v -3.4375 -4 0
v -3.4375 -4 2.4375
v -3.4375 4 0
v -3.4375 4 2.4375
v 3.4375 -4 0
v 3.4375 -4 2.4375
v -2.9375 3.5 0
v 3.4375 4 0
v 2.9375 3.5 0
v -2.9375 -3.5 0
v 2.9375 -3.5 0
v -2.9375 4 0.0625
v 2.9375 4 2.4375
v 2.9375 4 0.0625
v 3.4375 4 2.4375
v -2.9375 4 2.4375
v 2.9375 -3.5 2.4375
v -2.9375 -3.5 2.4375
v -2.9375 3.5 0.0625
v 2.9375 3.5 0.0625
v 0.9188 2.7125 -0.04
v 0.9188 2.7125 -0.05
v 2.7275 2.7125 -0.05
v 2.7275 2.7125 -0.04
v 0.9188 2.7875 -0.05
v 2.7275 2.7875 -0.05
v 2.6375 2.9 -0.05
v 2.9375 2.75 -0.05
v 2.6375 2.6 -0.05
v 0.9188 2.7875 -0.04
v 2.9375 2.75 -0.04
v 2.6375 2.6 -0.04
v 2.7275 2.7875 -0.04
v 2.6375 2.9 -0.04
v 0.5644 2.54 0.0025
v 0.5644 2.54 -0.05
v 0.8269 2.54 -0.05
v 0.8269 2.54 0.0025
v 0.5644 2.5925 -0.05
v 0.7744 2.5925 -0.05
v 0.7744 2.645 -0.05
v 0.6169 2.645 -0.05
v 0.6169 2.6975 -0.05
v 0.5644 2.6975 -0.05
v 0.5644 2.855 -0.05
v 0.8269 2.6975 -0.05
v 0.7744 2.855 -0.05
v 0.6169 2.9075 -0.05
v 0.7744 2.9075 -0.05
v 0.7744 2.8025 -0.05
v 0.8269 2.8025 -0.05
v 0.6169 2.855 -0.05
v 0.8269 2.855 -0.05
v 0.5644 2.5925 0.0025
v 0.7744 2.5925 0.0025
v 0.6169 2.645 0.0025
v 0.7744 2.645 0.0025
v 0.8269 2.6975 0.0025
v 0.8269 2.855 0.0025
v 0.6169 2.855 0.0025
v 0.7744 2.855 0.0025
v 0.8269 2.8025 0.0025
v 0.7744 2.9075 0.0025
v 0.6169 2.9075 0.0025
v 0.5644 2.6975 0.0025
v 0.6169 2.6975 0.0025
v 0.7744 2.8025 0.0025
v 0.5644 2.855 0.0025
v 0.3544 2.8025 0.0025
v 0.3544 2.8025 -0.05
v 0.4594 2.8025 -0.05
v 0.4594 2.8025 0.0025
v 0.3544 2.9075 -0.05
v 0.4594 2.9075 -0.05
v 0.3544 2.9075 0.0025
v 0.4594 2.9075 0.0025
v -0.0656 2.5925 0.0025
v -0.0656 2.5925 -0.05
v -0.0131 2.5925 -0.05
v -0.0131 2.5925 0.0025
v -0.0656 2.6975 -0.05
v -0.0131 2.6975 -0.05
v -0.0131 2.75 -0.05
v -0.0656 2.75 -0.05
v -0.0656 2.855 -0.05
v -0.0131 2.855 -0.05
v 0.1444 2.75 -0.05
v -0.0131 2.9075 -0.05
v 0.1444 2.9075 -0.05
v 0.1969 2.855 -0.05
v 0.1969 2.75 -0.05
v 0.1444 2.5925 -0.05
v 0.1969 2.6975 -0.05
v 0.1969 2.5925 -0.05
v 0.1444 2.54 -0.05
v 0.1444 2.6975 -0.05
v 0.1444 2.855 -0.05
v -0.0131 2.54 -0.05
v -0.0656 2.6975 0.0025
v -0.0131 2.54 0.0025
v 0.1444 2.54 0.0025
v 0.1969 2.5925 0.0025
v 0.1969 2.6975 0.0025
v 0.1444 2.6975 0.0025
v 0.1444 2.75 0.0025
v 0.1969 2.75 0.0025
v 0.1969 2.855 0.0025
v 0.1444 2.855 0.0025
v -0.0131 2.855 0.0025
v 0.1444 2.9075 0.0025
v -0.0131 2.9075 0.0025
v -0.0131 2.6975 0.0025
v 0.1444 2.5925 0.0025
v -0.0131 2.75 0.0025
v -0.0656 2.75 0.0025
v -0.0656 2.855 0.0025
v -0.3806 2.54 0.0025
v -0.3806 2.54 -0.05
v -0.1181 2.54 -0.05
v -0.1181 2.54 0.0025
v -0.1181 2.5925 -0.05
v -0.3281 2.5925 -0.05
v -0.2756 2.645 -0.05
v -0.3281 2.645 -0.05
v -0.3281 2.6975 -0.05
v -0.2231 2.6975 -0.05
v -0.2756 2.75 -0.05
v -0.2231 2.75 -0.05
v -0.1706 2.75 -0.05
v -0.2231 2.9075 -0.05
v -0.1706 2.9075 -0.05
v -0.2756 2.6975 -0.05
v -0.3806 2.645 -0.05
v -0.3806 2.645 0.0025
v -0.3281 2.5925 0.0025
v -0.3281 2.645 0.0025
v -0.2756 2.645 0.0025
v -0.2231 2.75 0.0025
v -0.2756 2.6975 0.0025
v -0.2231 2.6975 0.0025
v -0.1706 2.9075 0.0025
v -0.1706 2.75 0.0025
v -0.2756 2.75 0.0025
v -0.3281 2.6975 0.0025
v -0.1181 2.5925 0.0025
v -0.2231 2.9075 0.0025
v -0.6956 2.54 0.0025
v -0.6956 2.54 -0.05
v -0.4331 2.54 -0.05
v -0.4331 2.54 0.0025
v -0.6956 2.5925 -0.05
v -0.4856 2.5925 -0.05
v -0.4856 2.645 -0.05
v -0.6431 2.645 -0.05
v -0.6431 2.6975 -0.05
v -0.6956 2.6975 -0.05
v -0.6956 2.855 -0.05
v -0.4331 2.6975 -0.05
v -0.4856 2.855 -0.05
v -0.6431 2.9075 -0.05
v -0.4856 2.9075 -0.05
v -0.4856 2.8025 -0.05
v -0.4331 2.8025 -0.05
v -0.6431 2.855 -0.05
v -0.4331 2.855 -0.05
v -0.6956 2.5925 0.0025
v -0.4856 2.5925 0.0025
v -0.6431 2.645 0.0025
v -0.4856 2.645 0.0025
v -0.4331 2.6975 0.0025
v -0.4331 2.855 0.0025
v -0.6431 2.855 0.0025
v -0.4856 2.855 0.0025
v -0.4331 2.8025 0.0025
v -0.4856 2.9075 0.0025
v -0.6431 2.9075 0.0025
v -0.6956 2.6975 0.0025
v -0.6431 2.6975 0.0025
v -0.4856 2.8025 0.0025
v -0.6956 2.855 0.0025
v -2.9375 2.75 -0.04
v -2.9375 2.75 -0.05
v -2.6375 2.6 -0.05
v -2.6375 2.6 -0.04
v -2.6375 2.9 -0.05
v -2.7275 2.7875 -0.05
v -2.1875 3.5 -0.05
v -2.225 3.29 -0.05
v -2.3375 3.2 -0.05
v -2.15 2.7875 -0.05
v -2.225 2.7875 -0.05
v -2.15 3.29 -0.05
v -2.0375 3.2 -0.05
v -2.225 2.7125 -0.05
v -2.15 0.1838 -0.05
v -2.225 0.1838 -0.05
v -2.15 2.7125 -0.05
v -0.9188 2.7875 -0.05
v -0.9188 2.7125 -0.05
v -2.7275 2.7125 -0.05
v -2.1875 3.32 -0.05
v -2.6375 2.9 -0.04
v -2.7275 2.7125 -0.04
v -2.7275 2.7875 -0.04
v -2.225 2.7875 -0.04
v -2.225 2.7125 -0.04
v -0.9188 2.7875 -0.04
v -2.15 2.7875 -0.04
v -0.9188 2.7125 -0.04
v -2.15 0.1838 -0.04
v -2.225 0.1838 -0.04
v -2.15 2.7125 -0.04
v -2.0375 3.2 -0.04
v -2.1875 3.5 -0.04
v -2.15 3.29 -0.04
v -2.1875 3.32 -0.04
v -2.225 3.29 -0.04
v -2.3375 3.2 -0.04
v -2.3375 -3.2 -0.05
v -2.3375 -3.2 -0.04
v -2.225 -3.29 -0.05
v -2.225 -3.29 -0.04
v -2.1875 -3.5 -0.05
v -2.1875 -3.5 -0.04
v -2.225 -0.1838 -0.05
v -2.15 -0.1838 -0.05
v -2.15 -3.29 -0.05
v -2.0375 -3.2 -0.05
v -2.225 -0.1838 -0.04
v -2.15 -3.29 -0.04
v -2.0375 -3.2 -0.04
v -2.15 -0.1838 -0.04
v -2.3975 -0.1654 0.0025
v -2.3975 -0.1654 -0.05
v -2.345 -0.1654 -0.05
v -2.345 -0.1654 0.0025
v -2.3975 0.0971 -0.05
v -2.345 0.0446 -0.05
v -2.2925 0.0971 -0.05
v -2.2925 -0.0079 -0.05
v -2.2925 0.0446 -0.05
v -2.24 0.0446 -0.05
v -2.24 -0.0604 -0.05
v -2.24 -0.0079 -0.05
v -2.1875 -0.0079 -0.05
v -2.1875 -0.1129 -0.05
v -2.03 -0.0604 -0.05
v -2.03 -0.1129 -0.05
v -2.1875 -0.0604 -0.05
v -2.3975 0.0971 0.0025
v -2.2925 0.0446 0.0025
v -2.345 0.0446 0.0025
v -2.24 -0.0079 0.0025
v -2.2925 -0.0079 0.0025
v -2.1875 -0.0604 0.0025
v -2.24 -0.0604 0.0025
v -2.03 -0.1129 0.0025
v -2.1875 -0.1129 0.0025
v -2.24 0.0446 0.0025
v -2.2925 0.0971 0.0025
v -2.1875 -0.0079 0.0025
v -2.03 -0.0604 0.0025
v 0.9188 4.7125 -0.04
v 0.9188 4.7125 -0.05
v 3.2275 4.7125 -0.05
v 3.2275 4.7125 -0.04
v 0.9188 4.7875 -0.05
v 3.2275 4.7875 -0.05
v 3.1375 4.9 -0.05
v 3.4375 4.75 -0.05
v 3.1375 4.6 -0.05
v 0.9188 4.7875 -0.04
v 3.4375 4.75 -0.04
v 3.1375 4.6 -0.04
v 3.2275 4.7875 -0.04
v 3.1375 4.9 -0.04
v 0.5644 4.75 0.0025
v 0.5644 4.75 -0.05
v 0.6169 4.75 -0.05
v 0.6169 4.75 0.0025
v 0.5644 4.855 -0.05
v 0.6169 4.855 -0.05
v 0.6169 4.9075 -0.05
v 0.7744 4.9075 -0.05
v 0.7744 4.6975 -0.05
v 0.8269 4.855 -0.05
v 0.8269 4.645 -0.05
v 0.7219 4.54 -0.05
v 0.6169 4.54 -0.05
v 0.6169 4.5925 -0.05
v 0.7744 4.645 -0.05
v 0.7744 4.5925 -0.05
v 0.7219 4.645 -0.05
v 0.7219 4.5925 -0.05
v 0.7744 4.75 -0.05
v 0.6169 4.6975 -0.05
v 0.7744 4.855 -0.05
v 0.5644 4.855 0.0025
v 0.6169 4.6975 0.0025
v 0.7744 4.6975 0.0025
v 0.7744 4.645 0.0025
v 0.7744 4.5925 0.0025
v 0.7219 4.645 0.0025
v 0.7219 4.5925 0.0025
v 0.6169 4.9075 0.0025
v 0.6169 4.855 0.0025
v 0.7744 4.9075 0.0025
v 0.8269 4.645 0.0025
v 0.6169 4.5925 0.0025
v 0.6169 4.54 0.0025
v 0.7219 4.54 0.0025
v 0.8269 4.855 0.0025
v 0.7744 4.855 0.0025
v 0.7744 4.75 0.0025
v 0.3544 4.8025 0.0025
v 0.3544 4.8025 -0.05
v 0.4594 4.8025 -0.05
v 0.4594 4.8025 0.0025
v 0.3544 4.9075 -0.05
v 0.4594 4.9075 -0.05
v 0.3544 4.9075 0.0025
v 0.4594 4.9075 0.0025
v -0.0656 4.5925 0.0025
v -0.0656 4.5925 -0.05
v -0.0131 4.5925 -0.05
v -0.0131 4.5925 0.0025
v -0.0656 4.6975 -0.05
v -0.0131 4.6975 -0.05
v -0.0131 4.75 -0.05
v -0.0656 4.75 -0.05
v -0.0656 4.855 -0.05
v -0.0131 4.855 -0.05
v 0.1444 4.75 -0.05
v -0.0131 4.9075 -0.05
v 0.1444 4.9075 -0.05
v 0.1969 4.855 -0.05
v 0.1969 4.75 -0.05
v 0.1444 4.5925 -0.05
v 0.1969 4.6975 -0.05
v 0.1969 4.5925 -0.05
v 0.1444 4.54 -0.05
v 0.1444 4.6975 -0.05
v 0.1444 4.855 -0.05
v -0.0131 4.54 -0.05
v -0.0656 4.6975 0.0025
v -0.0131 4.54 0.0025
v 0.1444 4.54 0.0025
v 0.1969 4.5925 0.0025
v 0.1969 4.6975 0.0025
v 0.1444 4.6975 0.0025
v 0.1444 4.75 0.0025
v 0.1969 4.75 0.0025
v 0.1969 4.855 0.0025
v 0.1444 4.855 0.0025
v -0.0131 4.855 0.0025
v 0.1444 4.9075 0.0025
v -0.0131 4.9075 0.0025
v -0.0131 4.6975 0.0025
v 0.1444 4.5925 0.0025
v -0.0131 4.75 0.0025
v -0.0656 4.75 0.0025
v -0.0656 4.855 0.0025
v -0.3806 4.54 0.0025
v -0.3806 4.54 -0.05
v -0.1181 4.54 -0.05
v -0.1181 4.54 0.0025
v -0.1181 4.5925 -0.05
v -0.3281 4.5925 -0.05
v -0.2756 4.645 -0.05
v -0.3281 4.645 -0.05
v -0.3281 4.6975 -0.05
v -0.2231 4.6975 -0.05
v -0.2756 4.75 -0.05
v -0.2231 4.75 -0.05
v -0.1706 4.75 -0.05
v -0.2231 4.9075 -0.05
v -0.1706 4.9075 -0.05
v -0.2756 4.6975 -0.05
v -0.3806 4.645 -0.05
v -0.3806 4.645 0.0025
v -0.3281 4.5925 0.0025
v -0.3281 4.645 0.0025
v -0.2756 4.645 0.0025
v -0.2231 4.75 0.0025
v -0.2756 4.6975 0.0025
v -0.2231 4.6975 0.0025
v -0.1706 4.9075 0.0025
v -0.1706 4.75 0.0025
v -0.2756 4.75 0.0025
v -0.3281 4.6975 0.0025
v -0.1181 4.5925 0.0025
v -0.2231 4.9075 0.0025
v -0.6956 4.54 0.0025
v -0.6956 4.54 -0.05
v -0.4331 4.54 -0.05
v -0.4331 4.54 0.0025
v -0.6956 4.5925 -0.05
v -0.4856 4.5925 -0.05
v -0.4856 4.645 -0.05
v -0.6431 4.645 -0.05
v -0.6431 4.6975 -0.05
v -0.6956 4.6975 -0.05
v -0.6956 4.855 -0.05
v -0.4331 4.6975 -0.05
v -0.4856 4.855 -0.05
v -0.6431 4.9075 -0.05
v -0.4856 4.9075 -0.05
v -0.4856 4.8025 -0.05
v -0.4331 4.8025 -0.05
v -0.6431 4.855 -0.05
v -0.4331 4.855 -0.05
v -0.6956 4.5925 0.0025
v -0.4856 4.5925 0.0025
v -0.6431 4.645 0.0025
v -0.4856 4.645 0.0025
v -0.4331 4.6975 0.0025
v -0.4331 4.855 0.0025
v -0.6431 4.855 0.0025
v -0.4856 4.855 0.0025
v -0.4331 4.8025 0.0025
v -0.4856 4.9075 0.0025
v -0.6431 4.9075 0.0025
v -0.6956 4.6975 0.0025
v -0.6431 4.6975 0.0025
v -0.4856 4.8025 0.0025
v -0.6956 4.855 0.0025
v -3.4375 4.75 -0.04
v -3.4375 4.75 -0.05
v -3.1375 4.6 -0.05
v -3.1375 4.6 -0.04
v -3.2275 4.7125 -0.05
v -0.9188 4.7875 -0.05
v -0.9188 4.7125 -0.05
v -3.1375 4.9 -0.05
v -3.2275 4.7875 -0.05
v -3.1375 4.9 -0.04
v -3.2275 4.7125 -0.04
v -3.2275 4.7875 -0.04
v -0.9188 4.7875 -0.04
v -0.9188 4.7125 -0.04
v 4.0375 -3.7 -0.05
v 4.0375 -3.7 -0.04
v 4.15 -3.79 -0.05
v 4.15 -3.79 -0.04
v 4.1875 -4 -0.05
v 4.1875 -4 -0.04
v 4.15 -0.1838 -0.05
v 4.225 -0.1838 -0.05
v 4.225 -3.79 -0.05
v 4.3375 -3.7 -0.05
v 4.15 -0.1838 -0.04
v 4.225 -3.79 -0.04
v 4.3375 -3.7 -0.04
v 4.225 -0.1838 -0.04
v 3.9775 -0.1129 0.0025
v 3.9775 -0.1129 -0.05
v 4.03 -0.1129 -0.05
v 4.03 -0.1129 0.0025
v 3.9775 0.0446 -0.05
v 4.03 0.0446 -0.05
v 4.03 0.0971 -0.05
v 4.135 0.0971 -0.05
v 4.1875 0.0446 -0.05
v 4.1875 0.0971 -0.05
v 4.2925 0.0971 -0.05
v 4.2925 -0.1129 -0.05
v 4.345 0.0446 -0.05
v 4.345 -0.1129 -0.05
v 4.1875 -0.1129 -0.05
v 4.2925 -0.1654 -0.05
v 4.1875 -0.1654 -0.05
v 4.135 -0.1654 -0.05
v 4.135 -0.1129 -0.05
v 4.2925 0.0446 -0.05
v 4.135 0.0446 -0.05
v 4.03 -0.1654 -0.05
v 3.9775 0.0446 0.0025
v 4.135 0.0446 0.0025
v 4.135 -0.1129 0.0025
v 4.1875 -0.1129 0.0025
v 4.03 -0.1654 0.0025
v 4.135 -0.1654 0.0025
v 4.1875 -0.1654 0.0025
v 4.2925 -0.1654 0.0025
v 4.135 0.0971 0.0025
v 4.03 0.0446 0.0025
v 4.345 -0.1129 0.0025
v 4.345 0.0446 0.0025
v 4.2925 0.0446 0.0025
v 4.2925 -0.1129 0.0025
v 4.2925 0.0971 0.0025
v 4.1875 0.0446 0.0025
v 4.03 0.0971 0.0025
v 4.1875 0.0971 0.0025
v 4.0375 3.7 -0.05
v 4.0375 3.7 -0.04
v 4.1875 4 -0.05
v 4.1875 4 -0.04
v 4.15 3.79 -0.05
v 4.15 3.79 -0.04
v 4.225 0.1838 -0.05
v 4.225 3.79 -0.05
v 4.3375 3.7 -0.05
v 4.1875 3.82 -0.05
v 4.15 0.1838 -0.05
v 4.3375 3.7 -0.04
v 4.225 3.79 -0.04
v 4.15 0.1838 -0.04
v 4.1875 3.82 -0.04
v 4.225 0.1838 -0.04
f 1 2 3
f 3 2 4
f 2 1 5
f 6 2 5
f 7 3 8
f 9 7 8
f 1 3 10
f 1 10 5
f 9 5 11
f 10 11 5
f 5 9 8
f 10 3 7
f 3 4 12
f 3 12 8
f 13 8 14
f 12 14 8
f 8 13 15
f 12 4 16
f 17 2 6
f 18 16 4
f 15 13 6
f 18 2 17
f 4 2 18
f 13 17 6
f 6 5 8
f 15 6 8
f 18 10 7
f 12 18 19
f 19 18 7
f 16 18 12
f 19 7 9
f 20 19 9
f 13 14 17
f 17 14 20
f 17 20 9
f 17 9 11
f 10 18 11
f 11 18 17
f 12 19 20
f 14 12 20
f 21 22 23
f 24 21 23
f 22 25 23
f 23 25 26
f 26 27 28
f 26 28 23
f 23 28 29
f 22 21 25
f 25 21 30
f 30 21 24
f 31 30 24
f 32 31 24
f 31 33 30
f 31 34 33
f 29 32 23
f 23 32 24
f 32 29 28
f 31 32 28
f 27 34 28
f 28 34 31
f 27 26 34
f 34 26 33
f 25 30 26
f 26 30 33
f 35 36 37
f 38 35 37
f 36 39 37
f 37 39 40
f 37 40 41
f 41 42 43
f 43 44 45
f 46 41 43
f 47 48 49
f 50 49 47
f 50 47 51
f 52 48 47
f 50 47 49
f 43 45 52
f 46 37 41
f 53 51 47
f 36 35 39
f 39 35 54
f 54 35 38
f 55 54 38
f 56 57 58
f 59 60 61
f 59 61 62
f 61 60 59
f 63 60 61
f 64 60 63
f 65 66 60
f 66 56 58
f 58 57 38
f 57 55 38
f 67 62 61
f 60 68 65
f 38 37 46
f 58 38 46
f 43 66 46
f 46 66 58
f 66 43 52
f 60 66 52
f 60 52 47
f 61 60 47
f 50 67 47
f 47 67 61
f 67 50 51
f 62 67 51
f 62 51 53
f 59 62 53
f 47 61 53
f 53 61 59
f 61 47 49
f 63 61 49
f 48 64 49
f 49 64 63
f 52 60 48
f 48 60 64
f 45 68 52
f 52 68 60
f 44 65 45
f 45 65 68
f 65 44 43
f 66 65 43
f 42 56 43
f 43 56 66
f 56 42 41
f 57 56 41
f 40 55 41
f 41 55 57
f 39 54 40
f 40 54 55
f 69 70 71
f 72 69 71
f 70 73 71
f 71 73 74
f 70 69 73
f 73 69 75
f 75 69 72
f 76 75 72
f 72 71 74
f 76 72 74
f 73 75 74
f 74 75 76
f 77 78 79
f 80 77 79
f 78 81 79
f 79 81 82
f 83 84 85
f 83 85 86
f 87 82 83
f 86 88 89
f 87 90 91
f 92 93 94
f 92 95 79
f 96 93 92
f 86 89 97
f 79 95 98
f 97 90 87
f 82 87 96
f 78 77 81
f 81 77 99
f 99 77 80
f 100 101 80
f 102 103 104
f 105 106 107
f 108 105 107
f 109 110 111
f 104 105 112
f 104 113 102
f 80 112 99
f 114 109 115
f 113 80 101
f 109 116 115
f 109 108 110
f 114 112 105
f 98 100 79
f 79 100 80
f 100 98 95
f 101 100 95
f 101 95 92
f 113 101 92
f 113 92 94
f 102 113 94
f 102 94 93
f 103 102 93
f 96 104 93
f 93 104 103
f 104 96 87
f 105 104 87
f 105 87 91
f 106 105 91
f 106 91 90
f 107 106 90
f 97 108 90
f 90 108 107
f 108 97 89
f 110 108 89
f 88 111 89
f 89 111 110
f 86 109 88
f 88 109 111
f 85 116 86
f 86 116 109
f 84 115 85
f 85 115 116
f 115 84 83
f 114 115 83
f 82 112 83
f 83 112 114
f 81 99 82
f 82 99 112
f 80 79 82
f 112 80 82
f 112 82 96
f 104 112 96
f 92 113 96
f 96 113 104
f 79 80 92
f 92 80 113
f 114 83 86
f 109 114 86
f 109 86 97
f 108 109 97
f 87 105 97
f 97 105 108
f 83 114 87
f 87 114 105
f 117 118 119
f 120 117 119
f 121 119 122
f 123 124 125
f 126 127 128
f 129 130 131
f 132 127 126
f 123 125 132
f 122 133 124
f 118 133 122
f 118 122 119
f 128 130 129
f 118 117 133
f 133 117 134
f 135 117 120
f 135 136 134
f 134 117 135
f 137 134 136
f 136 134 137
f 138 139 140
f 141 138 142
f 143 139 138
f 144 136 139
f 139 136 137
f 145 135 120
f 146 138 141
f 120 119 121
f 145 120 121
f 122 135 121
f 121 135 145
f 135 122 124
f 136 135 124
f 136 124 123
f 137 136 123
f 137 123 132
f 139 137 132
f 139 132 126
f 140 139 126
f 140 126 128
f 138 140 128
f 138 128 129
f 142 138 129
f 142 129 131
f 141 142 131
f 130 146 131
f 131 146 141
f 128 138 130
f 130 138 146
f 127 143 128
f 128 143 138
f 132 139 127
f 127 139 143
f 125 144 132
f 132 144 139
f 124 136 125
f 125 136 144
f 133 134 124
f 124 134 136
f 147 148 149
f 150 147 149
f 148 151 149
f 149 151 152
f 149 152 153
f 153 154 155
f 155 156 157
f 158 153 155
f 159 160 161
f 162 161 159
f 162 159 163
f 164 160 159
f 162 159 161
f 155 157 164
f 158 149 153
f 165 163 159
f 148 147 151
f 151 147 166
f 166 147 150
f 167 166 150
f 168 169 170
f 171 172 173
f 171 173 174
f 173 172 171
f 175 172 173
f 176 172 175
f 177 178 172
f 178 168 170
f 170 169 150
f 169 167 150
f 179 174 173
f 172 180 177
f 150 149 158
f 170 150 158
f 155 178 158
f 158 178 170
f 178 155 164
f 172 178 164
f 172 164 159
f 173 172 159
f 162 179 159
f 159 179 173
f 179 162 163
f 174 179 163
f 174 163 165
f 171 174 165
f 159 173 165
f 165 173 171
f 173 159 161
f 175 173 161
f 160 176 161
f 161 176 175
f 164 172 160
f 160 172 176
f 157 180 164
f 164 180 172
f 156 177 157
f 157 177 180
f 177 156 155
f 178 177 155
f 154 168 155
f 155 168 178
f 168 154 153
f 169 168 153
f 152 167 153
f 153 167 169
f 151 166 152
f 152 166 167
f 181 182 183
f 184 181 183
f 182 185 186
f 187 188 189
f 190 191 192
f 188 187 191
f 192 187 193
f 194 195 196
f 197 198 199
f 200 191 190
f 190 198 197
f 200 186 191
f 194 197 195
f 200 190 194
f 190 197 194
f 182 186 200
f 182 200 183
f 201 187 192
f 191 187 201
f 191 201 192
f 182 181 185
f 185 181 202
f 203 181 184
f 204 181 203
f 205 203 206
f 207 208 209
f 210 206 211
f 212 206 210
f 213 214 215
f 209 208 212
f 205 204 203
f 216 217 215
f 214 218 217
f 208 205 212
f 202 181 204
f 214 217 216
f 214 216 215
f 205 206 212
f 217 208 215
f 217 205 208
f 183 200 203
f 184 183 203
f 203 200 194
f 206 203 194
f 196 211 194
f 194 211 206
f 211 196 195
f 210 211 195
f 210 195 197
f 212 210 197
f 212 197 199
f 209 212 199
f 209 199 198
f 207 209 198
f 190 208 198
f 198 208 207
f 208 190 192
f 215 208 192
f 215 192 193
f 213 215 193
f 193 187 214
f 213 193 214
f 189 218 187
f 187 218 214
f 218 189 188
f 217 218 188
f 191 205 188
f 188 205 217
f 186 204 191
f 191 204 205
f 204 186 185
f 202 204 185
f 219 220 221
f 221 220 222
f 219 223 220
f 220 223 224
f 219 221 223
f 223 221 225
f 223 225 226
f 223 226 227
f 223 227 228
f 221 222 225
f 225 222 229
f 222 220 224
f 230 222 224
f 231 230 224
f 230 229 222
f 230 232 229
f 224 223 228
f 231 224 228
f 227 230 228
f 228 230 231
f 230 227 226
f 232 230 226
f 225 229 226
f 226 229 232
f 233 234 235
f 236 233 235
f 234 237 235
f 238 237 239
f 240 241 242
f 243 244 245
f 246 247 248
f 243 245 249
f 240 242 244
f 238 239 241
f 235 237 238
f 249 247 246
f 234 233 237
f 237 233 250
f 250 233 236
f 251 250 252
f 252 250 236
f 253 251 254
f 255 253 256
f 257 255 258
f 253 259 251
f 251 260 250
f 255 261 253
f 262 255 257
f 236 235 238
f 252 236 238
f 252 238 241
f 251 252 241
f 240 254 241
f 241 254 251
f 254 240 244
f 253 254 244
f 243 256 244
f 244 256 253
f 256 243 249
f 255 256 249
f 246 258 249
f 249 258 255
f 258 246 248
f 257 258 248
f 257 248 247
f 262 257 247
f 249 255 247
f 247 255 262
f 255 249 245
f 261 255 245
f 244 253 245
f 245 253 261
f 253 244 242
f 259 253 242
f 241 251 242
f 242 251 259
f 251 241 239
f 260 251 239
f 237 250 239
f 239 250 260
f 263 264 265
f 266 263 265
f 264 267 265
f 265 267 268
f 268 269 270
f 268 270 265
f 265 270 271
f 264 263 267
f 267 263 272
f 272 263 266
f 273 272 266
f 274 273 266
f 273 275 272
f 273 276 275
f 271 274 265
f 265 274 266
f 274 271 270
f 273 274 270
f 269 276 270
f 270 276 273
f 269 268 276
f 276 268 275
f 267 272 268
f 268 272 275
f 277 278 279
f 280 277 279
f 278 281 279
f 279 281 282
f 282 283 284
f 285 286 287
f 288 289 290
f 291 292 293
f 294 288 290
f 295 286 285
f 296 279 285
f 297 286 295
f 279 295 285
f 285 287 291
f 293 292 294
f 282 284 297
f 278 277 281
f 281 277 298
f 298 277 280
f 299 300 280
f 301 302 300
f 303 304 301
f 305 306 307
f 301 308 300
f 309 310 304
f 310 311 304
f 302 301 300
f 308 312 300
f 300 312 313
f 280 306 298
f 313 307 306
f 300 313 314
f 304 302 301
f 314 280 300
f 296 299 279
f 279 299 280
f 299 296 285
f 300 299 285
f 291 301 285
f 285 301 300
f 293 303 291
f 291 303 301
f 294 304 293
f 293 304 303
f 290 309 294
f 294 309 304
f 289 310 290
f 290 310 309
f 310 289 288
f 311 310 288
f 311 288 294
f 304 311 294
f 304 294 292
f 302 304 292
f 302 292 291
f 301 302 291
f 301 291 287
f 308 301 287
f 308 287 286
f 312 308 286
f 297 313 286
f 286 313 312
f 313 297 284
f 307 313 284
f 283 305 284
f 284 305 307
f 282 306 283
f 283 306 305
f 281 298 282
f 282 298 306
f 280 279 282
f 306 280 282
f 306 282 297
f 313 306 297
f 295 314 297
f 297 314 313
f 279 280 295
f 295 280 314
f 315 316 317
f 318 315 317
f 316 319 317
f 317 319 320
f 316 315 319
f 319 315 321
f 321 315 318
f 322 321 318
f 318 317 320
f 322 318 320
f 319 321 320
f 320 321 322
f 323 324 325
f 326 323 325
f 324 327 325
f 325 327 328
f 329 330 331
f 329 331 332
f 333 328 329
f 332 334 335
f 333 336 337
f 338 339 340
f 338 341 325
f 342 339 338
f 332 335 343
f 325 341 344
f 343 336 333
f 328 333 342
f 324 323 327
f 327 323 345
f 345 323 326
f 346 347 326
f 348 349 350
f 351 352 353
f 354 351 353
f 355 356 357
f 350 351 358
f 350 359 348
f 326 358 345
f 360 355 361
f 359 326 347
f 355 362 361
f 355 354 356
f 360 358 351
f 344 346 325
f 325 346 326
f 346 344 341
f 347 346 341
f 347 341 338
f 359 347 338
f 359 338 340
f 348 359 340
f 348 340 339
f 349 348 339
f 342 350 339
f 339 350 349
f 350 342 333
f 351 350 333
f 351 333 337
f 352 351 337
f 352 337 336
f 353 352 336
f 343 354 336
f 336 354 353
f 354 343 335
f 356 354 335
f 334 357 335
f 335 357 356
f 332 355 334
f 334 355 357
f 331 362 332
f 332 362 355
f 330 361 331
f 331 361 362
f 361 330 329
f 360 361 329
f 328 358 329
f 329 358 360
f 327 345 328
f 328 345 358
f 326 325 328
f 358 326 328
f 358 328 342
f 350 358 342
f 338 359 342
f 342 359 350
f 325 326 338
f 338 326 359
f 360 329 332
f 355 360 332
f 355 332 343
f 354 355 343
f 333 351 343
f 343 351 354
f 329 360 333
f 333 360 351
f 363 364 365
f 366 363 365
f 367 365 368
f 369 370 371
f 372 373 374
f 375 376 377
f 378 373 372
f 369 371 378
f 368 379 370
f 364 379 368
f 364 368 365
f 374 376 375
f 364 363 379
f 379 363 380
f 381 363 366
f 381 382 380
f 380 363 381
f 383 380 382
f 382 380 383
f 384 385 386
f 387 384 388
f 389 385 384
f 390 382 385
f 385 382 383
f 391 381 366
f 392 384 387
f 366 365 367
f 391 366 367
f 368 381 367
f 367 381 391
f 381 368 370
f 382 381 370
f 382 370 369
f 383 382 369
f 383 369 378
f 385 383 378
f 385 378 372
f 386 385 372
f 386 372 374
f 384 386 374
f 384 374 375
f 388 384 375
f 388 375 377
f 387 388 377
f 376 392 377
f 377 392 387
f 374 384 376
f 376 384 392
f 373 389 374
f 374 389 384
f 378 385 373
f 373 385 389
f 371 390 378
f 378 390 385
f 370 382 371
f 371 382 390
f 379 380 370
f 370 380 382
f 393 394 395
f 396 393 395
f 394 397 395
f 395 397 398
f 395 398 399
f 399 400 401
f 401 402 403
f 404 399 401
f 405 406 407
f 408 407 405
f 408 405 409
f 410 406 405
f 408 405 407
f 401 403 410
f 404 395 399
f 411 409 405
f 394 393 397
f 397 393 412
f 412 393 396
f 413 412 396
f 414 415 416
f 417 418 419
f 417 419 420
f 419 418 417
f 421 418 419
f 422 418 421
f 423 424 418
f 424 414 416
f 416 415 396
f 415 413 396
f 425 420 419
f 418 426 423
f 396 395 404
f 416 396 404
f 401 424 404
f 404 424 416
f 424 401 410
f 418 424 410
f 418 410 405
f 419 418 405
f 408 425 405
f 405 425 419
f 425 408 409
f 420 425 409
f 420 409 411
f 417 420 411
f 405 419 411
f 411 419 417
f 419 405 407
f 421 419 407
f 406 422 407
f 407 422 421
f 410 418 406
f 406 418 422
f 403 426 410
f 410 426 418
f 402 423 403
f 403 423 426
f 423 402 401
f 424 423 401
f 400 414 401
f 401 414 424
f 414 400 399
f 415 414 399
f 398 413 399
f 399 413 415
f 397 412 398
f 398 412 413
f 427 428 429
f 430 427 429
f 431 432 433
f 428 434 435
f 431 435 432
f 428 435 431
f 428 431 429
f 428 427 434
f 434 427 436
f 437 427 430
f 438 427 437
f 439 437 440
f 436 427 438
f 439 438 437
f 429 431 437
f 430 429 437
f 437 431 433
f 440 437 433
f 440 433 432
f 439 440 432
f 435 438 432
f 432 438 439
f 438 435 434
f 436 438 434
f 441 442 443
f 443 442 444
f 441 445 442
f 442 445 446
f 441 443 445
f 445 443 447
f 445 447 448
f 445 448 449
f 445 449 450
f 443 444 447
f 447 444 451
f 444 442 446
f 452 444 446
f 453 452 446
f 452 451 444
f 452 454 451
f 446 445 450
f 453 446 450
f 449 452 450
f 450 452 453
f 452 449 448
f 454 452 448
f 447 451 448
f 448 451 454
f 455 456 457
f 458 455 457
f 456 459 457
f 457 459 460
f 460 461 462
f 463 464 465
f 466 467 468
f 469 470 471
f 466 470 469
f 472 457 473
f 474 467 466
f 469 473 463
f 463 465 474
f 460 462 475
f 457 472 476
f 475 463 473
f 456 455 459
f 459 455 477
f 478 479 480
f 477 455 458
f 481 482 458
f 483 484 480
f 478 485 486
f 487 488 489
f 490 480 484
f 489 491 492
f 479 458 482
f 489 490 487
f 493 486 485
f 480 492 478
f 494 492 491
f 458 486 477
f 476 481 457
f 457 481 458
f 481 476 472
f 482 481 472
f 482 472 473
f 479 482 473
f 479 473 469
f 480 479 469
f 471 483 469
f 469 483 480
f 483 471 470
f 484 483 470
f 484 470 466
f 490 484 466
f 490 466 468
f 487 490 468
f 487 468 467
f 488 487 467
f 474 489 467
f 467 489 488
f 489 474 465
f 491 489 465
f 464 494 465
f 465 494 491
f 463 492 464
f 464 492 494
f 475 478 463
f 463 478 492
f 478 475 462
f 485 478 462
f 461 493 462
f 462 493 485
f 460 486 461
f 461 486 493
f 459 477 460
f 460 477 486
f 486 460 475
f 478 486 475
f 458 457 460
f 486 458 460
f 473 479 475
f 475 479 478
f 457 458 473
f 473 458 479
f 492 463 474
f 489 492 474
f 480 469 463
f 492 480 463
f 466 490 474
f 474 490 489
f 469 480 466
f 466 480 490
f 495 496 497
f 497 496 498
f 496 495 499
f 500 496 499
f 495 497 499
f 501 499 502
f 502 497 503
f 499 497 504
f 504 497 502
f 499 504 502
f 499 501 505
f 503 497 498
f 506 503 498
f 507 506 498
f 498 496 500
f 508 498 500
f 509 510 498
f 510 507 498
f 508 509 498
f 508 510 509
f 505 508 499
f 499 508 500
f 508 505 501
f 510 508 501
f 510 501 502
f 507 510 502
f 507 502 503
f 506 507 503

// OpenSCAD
// file: ../includes/TextGenerator.scad
//Draw text
scale([4,4,4]) drawtext("Hello World!");

//Draw character set
//scale([2,2,2]) drawtext(" !\"#$%&'()*+,-./0123456789:;<=>?@ABCDEFGHIJKLMNOPQRSTUVWXYZ[\\]^_`abcdefghijklmnopqrstuvwxyz{|}");

module drawtext(text) {
	//Characters
	chars = " !\"#$%&'()*+,-./0123456789:;<=>?@ABCDEFGHIJKLMNOPQRSTUVWXYZ[\\]^_`abcdefghijklmnopqrstuvwxyz{|}";

	//Chracter table defining 5x7 characters
	//Adapted from: http://www.geocities.com/dinceraydin/djlcdsim/chartable.js
	char_table = [ [ 0, 0, 0, 0, 0, 0, 0],
                  [ 4, 0, 4, 4, 4, 4, 4],
                  [ 0, 0, 0, 0,10,10,10],
                  [10,10,31,10,31,10,10],
                  [ 4,30, 5,14,20,15, 4],
                  [ 3,19, 8, 4, 2,25,24],
                  [13,18,21, 8,20,18,12],
                  [ 0, 0, 0, 0, 8, 4,12],
                  [ 2, 4, 8, 8, 8, 4, 2],
                  [ 8, 4, 2, 2, 2, 4, 8],
                  [ 0, 4,21,14,21, 4, 0],
                  [ 0, 4, 4,31, 4, 4, 0],
                  [ 8, 4,12, 0, 0, 0, 0],
                  [ 0, 0, 0,31, 0, 0, 0],
                  [12,12, 0, 0, 0, 0, 0],
                  [ 0,16, 8, 4, 2, 1, 0],
                  [14,17,25,21,19,17,14],
                  [14, 4, 4, 4, 4,12, 4],
                  [31, 8, 4, 2, 1,17,14],
                  [14,17, 1, 2, 4, 2,31],
                  [ 2, 2,31,18,10, 6, 2],
                  [14,17, 1, 1,30,16,31],
                  [14,17,17,30,16, 8, 6],
                  [ 8, 8, 8, 4, 2, 1,31],
                  [14,17,17,14,17,17,14],
                  [12, 2, 1,15,17,17,14],
                  [ 0,12,12, 0,12,12, 0],
                  [ 8, 4,12, 0,12,12, 0],
                  [ 2, 4, 8,16, 8, 4, 2],
                  [ 0, 0,31, 0,31, 0, 0],
                  [16, 8, 4, 2, 4, 8,16],
                  [ 4, 0, 4, 2, 1,17,14],
                  [14,21,21,13, 1,17,14],
                  [17,17,31,17,17,17,14],
                  [30,17,17,30,17,17,30],
                  [14,17,16,16,16,17,14],
                  [30,17,17,17,17,17,30],
                  [31,16,16,30,16,16,31],
                  [16,16,16,30,16,16,31],
                  [15,17,17,23,16,17,14],
                  [17,17,17,31,17,17,17],
                  [14, 4, 4, 4, 4, 4,14],
                  [12,18, 2, 2, 2, 2, 7],
                  [17,18,20,24,20,18,17],
                  [31,16,16,16,16,16,16],
                  [17,17,17,21,21,27,17],
                  [17,17,19,21,25,17,17],
                  [14,17,17,17,17,17,14],
                  [16,16,16,30,17,17,30],
                  [13,18,21,17,17,17,14],
                  [17,18,20,30,17,17,30],
                  [30, 1, 1,14,16,16,15],
                  [ 4, 4, 4, 4, 4, 4,31],
                  [14,17,17,17,17,17,17],
                  [ 4,10,17,17,17,17,17],
                  [10,21,21,21,17,17,17],
                  [17,17,10, 4,10,17,17],
                  [ 4, 4, 4,10,17,17,17],
                  [31,16, 8, 4, 2, 1,31],
                  [14, 8, 8, 8, 8, 8,14],
                  [ 0, 1, 2, 4, 8,16, 0],
                  [14, 2, 2, 2, 2, 2,14],
                  [ 0, 0, 0, 0,17,10, 4],
                  [31, 0, 0, 0, 0, 0, 0],
                  [ 0, 0, 0, 0, 2, 4, 8],
                  [15,17,15, 1,14, 0, 0],
                  [30,17,17,25,22,16,16],
                  [14,17,16,16,14, 0, 0],
                  [15,17,17,19,13, 1, 1],
                  [14,16,31,17,14, 0, 0],
                  [ 8, 8, 8,28, 8, 9, 6],
                  [14, 1,15,17,15, 0, 0],
                  [17,17,17,25,22,16,16],
                  [14, 4, 4, 4,12, 0, 4],
                  [12,18, 2, 2, 2, 6, 2],
                  [18,20,24,20,18,16,16],
                  [14, 4, 4, 4, 4, 4,12],
                  [17,17,21,21,26, 0, 0],
                  [17,17,17,25,22, 0, 0],
                  [14,17,17,17,14, 0, 0],
                  [16,16,30,17,30, 0, 0],
                  [ 1, 1,15,19,13, 0, 0],
                  [16,16,16,25,22, 0, 0],
                  [30, 1,14,16,15, 0, 0],
                  [ 6, 9, 8, 8,28, 8, 8],
                  [13,19,17,17,17, 0, 0],
                  [ 4,10,17,17,17, 0, 0],
                  [10,21,21,17,17, 0, 0],
                  [17,10, 4,10,17, 0, 0],
                  [14, 1,15,17,17, 0, 0],
                  [31, 8, 4, 2,31, 0, 0],
                  [ 2, 4, 4, 8, 4, 4, 2],
                  [ 4, 4, 4, 4, 4, 4, 4],
                  [ 8, 4, 4, 2, 4, 4, 8] ];

	//Binary decode table
	dec_table = [ "00000", "00001", "00010", "00011", "00100", "00101",
  	            "00110", "00111", "01000", "01001", "01010", "01011",
  	            "01100", "01101", "01110", "01111", "10000", "10001",
  	            "10010", "10011", "10100", "10101", "10110", "10111",
	            "11000", "11001", "11010", "11011", "11100", "11101",
	            "11110", "11111" ];

	//Process string one character at a time
	for(itext = [0:len(text)-1]) {
		//Convert character to index
		ichar = search(text[itext],chars,1)[0];

        //Decode character - rows
        for(irow = [0:6]) {
            //Select value to draw from table
            val = dec_table[char_table[ichar][irow]];

            //Decode character - cols
            for(icol = [0:4]) {
                // Retrieve bit to draw
                bit = search(val[icol],"01",1)[0];

                if(bit) {
                    //Output cube
                    translate([icol + (6*itext), irow, 0])
                        cube([1.0001,1.0001,1]);
                }
            }
        }
	}
}
// main file
include <../includes/dimlines.scad>		// from Don Smiley at http://www.cannymachines.com/entries/9/openscad_dimensioned_drawings
									// text generation from PGreenland at http://www.thingiverse.com/thing:59817  Creative Commons-Attribution-Share Alike

// associate index to axis
X = 0;
Y = 1;
Z = 2;

// measurements in inches
Size_of_PCB = [5+7/8, 7, 1/16];
Size_of_Top_Plate = [6+7/8, 8, 1/16];
Height_of_Internal_Box = 2+7/16;

scaleFactor = 1;			// use 25.4 to convert inches to millimeters
PCB = Size_of_PCB * scaleFactor;
TPL = Size_of_Top_Plate * scaleFactor;
h = Height_of_Internal_Box * scaleFactor;

separation = .75 * scaleFactor;

module backPlate() {
	cube([ TPL[X], (TPL[Y]-PCB[Y])/2, h ]);
}

module sidePlate() {
	cube([(TPL[X]-PCB[X])/2, TPL[Y], h ]);
	cube([(TPL[X]-PCB[X])/2, TPL[Y], h ]);
}

module internalBox() {
	union() {
		backPlate();
		sidePlate();
		translate([TPL[X], 0, 0]) mirror([1, 0, 0]) sidePlate();
	}
}

translate ([-TPL[X]/2, -TPL[Y]/2, 0]) internalBox();
#translate ([-PCB[X]/2, PCB[Y]/2, 0]) cube([PCB[X],(TPL[Y]-PCB[Y])/2, TPL[Z]]);

translate ([PCB[X]/2, PCB[Y]/2-separation, -.05]) rotate ([0,0,180]) dimensions(length=PCB[X], line_width=DIM_LINE_WIDTH, loc=0);
translate ([-PCB[X]/2+separation, -PCB[Y]/2, -.05]) rotate ([0,0,90]) dimensions(length=PCB[Y], line_width=DIM_LINE_WIDTH, loc=0);

translate ([TPL[X]/2, TPL[Y]/2+separation, -.05]) rotate ([0,0,180]) dimensions(length=TPL[X], line_width=DIM_LINE_WIDTH, loc=0);
translate ([TPL[X]/2+separation, -TPL[Y]/2, -.05]) rotate ([0,0,90]) dimensions(length=TPL[Y], line_width=DIM_LINE_WIDTH, loc=0);
